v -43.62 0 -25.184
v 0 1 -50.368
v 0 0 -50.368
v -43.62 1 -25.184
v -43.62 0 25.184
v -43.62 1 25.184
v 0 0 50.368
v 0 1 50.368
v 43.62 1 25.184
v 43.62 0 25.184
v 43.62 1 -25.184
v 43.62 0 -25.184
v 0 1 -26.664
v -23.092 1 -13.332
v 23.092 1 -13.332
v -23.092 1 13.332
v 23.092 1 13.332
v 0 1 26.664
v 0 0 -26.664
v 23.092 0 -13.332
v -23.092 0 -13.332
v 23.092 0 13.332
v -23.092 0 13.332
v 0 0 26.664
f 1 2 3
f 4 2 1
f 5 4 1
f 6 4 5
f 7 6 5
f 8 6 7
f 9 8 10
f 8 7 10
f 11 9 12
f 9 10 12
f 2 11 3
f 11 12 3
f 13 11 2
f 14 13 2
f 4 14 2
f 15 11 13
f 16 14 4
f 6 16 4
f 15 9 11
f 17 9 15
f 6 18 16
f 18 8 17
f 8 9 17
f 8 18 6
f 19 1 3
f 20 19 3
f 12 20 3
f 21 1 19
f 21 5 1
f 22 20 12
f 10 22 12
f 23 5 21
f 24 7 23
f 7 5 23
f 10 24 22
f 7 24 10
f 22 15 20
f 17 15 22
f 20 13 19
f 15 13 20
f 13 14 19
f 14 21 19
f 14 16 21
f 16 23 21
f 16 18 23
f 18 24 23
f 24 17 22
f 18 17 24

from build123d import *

# Parameters (mm, degrees)
RESSALTO_EXTRUS_O1_DEPTH = 1
CORTE_EXTRUS_O1_DEPTH    = 67.638154236


with BuildPart() as part:
    # Esboço1 → Ressalto-extrusão1 (new body)
    with BuildSketch(Plane(origin=(0, 0, 0), x_dir=(1, 0, 0), z_dir=(0, 1, 0))):
        Polygon((-43.62, 11.068078609), (-43.62, 25.184018742), (-12.224762753, 43.310067418), (0, 50.368037484), (31.395237247, 32.241988808), (43.62, 25.184018742), (43.62, -11.068078609), (43.62, -25.184018742), (12.224762753, -43.310067418), (0, -50.368037484), (-31.395237247, -32.241988808), (-43.62, -25.184018742), align=None)
    extrude(amount=RESSALTO_EXTRUS_O1_DEPTH)

    # Esboço2 → Corte-extrusão1 (cut, through all)
    with BuildSketch(Plane.XZ):
        Polygon((23.09165742, 13.331974628), (0, 26.663949255), (-23.09165742, 13.331974628), (-23.09165742, -13.331974628), (0, -26.663949255), (23.09165742, -13.331974628), align=None)
    extrude(amount=-CORTE_EXTRUS_O1_DEPTH, mode=Mode.SUBTRACT)


solid = part.part
